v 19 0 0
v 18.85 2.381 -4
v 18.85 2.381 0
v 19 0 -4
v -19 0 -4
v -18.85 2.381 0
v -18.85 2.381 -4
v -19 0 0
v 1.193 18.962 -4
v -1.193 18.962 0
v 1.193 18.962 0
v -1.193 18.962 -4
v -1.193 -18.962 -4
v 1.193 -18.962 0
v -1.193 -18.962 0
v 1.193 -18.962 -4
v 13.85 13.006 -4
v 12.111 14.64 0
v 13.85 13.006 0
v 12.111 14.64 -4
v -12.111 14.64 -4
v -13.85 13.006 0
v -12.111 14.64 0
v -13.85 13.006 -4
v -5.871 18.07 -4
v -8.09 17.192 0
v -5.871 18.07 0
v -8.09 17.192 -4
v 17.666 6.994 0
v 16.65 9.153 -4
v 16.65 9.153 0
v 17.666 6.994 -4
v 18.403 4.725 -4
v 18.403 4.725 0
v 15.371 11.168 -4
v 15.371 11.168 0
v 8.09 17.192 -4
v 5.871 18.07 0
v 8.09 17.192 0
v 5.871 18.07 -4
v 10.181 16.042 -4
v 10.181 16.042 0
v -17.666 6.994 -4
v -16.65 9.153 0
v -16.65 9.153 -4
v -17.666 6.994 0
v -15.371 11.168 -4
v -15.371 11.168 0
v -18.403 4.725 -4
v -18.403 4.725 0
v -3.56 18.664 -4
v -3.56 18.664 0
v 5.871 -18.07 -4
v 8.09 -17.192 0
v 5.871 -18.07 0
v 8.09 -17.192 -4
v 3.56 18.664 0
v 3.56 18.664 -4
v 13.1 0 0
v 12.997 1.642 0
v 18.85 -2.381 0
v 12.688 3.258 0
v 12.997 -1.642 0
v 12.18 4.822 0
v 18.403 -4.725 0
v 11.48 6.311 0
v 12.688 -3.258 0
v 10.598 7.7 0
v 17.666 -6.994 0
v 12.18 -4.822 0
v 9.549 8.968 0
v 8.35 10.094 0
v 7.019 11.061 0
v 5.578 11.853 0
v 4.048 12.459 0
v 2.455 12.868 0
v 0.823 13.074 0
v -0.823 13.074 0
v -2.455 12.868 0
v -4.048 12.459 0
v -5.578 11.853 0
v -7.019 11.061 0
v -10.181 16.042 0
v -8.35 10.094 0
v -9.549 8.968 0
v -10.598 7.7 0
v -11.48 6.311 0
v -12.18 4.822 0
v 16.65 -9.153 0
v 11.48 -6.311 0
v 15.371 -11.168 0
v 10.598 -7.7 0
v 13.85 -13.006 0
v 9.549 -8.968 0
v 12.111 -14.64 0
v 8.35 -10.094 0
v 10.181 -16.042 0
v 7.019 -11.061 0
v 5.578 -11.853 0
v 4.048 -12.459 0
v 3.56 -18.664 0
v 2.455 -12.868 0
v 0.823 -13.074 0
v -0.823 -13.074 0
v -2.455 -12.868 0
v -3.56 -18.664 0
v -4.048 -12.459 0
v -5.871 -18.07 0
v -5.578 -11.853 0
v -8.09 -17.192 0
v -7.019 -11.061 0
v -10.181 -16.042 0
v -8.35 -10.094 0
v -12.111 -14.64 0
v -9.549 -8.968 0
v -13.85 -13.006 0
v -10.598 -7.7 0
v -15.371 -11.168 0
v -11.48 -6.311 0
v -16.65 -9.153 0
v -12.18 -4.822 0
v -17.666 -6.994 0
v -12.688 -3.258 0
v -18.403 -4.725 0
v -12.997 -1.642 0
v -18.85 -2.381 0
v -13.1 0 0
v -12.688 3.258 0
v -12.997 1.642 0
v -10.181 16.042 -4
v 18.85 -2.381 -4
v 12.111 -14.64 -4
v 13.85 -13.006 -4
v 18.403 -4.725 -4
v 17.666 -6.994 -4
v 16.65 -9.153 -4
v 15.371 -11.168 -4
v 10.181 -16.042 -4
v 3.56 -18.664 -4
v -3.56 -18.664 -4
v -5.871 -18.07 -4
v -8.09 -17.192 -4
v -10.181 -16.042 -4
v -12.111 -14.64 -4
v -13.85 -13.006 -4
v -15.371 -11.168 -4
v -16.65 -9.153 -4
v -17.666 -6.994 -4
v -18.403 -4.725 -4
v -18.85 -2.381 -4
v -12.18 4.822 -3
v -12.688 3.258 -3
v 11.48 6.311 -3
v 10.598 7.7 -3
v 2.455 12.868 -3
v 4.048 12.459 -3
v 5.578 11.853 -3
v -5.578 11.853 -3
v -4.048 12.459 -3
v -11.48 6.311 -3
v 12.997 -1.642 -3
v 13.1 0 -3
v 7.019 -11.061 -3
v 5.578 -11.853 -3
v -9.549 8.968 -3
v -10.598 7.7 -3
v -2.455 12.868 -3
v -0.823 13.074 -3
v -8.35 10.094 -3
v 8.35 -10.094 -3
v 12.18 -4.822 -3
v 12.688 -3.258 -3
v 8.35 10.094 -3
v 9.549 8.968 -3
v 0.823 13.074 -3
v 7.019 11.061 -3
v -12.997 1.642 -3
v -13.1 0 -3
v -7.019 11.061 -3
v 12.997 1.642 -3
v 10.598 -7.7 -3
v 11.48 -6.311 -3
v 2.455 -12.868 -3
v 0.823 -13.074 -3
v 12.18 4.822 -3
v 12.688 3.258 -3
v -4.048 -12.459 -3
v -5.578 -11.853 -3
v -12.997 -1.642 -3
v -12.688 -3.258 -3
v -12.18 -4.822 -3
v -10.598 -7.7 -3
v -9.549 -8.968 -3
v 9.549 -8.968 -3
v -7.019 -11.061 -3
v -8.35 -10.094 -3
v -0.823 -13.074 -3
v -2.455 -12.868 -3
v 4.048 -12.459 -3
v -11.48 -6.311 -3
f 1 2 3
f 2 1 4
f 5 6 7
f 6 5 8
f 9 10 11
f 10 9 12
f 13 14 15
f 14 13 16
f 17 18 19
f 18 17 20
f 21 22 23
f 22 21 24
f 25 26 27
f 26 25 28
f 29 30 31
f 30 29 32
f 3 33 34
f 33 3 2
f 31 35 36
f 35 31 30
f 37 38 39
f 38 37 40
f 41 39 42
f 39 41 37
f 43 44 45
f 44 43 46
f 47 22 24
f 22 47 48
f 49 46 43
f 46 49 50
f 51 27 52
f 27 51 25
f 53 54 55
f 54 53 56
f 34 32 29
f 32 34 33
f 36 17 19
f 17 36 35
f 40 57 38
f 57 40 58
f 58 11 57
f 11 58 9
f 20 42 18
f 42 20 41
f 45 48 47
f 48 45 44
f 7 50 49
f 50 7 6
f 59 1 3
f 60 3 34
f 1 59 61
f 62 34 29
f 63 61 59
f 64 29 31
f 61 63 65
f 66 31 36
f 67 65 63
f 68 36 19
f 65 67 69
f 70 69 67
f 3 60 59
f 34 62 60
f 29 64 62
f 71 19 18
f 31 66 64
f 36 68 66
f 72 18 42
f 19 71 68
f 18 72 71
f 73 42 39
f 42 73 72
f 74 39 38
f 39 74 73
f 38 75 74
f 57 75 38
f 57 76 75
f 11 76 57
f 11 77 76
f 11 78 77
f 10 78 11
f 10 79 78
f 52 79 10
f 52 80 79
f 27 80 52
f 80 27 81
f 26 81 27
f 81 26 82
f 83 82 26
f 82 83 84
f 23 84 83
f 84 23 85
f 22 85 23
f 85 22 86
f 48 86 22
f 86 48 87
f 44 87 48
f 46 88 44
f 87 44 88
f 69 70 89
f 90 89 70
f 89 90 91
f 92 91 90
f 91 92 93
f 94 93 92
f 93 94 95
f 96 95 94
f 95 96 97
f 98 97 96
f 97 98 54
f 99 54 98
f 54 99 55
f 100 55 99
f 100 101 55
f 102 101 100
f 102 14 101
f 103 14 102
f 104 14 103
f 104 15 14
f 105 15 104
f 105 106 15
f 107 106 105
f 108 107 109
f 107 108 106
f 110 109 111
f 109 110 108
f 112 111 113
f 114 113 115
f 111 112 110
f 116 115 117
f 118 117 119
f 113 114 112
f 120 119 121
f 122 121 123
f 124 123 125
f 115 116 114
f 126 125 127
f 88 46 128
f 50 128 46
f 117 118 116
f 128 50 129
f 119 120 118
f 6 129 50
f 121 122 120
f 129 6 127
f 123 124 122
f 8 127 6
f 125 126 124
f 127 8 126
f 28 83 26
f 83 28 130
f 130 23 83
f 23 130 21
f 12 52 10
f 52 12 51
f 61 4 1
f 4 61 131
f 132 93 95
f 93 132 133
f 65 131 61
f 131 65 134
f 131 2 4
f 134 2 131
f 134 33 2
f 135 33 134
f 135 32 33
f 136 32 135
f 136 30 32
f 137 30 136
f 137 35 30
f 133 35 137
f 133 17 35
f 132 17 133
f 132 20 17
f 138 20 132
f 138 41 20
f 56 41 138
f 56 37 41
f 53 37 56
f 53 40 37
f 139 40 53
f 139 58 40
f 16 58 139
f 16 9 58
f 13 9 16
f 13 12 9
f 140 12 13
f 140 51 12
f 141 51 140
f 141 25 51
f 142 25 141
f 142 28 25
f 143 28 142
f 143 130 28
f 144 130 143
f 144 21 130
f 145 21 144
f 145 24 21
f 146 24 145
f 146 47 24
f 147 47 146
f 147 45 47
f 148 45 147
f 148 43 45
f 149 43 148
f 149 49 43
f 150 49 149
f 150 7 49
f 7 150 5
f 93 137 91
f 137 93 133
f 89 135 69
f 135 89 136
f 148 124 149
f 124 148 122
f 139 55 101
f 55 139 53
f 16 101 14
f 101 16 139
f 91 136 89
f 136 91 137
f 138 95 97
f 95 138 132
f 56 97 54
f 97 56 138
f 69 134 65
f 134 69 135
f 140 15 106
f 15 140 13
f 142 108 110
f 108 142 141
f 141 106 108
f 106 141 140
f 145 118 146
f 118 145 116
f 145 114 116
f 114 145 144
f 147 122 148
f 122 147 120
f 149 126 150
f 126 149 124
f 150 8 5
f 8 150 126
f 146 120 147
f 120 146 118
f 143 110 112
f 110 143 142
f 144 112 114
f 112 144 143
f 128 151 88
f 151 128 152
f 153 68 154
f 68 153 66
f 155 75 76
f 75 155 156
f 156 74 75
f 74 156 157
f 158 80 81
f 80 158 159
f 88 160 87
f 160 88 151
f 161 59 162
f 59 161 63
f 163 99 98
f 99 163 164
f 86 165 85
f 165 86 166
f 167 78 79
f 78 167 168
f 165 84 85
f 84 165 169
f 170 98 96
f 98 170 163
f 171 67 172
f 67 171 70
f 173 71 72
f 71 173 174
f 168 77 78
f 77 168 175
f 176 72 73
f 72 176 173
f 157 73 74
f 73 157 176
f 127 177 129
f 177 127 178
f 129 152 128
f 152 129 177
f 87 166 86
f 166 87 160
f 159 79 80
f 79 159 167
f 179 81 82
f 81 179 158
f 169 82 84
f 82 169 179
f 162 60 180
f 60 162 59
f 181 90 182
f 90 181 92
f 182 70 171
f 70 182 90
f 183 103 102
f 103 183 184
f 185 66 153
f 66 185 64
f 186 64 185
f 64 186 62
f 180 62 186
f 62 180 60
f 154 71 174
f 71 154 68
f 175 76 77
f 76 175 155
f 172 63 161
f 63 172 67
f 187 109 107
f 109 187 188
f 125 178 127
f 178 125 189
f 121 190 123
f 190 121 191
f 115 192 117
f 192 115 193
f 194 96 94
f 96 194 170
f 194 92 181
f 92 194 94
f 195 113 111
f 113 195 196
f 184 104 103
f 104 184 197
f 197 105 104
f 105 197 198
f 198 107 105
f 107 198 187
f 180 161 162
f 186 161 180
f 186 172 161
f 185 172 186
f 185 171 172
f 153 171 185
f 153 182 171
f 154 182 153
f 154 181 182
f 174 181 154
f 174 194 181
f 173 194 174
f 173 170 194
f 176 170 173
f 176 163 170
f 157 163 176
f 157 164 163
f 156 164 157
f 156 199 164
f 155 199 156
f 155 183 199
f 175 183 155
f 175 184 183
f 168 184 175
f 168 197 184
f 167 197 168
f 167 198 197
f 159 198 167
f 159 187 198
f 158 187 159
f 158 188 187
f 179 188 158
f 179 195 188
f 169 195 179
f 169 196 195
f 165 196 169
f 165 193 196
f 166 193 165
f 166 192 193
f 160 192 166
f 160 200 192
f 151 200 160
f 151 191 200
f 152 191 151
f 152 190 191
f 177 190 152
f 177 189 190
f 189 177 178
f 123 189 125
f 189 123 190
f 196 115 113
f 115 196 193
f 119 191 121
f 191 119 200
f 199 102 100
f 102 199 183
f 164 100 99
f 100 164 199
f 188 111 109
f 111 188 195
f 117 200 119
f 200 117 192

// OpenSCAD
$fn = 50;


difference() {
	union() {
		translate(v = [0, 0, -4.0000000000]) {
			cylinder(h = 4, r = 19.0000000000);
		}
	}
	union() {
		#translate(v = [0, 0, -3.0000000000]) {
			cylinder(h = 3, r = 13.1000000000);
		}
	}
}
